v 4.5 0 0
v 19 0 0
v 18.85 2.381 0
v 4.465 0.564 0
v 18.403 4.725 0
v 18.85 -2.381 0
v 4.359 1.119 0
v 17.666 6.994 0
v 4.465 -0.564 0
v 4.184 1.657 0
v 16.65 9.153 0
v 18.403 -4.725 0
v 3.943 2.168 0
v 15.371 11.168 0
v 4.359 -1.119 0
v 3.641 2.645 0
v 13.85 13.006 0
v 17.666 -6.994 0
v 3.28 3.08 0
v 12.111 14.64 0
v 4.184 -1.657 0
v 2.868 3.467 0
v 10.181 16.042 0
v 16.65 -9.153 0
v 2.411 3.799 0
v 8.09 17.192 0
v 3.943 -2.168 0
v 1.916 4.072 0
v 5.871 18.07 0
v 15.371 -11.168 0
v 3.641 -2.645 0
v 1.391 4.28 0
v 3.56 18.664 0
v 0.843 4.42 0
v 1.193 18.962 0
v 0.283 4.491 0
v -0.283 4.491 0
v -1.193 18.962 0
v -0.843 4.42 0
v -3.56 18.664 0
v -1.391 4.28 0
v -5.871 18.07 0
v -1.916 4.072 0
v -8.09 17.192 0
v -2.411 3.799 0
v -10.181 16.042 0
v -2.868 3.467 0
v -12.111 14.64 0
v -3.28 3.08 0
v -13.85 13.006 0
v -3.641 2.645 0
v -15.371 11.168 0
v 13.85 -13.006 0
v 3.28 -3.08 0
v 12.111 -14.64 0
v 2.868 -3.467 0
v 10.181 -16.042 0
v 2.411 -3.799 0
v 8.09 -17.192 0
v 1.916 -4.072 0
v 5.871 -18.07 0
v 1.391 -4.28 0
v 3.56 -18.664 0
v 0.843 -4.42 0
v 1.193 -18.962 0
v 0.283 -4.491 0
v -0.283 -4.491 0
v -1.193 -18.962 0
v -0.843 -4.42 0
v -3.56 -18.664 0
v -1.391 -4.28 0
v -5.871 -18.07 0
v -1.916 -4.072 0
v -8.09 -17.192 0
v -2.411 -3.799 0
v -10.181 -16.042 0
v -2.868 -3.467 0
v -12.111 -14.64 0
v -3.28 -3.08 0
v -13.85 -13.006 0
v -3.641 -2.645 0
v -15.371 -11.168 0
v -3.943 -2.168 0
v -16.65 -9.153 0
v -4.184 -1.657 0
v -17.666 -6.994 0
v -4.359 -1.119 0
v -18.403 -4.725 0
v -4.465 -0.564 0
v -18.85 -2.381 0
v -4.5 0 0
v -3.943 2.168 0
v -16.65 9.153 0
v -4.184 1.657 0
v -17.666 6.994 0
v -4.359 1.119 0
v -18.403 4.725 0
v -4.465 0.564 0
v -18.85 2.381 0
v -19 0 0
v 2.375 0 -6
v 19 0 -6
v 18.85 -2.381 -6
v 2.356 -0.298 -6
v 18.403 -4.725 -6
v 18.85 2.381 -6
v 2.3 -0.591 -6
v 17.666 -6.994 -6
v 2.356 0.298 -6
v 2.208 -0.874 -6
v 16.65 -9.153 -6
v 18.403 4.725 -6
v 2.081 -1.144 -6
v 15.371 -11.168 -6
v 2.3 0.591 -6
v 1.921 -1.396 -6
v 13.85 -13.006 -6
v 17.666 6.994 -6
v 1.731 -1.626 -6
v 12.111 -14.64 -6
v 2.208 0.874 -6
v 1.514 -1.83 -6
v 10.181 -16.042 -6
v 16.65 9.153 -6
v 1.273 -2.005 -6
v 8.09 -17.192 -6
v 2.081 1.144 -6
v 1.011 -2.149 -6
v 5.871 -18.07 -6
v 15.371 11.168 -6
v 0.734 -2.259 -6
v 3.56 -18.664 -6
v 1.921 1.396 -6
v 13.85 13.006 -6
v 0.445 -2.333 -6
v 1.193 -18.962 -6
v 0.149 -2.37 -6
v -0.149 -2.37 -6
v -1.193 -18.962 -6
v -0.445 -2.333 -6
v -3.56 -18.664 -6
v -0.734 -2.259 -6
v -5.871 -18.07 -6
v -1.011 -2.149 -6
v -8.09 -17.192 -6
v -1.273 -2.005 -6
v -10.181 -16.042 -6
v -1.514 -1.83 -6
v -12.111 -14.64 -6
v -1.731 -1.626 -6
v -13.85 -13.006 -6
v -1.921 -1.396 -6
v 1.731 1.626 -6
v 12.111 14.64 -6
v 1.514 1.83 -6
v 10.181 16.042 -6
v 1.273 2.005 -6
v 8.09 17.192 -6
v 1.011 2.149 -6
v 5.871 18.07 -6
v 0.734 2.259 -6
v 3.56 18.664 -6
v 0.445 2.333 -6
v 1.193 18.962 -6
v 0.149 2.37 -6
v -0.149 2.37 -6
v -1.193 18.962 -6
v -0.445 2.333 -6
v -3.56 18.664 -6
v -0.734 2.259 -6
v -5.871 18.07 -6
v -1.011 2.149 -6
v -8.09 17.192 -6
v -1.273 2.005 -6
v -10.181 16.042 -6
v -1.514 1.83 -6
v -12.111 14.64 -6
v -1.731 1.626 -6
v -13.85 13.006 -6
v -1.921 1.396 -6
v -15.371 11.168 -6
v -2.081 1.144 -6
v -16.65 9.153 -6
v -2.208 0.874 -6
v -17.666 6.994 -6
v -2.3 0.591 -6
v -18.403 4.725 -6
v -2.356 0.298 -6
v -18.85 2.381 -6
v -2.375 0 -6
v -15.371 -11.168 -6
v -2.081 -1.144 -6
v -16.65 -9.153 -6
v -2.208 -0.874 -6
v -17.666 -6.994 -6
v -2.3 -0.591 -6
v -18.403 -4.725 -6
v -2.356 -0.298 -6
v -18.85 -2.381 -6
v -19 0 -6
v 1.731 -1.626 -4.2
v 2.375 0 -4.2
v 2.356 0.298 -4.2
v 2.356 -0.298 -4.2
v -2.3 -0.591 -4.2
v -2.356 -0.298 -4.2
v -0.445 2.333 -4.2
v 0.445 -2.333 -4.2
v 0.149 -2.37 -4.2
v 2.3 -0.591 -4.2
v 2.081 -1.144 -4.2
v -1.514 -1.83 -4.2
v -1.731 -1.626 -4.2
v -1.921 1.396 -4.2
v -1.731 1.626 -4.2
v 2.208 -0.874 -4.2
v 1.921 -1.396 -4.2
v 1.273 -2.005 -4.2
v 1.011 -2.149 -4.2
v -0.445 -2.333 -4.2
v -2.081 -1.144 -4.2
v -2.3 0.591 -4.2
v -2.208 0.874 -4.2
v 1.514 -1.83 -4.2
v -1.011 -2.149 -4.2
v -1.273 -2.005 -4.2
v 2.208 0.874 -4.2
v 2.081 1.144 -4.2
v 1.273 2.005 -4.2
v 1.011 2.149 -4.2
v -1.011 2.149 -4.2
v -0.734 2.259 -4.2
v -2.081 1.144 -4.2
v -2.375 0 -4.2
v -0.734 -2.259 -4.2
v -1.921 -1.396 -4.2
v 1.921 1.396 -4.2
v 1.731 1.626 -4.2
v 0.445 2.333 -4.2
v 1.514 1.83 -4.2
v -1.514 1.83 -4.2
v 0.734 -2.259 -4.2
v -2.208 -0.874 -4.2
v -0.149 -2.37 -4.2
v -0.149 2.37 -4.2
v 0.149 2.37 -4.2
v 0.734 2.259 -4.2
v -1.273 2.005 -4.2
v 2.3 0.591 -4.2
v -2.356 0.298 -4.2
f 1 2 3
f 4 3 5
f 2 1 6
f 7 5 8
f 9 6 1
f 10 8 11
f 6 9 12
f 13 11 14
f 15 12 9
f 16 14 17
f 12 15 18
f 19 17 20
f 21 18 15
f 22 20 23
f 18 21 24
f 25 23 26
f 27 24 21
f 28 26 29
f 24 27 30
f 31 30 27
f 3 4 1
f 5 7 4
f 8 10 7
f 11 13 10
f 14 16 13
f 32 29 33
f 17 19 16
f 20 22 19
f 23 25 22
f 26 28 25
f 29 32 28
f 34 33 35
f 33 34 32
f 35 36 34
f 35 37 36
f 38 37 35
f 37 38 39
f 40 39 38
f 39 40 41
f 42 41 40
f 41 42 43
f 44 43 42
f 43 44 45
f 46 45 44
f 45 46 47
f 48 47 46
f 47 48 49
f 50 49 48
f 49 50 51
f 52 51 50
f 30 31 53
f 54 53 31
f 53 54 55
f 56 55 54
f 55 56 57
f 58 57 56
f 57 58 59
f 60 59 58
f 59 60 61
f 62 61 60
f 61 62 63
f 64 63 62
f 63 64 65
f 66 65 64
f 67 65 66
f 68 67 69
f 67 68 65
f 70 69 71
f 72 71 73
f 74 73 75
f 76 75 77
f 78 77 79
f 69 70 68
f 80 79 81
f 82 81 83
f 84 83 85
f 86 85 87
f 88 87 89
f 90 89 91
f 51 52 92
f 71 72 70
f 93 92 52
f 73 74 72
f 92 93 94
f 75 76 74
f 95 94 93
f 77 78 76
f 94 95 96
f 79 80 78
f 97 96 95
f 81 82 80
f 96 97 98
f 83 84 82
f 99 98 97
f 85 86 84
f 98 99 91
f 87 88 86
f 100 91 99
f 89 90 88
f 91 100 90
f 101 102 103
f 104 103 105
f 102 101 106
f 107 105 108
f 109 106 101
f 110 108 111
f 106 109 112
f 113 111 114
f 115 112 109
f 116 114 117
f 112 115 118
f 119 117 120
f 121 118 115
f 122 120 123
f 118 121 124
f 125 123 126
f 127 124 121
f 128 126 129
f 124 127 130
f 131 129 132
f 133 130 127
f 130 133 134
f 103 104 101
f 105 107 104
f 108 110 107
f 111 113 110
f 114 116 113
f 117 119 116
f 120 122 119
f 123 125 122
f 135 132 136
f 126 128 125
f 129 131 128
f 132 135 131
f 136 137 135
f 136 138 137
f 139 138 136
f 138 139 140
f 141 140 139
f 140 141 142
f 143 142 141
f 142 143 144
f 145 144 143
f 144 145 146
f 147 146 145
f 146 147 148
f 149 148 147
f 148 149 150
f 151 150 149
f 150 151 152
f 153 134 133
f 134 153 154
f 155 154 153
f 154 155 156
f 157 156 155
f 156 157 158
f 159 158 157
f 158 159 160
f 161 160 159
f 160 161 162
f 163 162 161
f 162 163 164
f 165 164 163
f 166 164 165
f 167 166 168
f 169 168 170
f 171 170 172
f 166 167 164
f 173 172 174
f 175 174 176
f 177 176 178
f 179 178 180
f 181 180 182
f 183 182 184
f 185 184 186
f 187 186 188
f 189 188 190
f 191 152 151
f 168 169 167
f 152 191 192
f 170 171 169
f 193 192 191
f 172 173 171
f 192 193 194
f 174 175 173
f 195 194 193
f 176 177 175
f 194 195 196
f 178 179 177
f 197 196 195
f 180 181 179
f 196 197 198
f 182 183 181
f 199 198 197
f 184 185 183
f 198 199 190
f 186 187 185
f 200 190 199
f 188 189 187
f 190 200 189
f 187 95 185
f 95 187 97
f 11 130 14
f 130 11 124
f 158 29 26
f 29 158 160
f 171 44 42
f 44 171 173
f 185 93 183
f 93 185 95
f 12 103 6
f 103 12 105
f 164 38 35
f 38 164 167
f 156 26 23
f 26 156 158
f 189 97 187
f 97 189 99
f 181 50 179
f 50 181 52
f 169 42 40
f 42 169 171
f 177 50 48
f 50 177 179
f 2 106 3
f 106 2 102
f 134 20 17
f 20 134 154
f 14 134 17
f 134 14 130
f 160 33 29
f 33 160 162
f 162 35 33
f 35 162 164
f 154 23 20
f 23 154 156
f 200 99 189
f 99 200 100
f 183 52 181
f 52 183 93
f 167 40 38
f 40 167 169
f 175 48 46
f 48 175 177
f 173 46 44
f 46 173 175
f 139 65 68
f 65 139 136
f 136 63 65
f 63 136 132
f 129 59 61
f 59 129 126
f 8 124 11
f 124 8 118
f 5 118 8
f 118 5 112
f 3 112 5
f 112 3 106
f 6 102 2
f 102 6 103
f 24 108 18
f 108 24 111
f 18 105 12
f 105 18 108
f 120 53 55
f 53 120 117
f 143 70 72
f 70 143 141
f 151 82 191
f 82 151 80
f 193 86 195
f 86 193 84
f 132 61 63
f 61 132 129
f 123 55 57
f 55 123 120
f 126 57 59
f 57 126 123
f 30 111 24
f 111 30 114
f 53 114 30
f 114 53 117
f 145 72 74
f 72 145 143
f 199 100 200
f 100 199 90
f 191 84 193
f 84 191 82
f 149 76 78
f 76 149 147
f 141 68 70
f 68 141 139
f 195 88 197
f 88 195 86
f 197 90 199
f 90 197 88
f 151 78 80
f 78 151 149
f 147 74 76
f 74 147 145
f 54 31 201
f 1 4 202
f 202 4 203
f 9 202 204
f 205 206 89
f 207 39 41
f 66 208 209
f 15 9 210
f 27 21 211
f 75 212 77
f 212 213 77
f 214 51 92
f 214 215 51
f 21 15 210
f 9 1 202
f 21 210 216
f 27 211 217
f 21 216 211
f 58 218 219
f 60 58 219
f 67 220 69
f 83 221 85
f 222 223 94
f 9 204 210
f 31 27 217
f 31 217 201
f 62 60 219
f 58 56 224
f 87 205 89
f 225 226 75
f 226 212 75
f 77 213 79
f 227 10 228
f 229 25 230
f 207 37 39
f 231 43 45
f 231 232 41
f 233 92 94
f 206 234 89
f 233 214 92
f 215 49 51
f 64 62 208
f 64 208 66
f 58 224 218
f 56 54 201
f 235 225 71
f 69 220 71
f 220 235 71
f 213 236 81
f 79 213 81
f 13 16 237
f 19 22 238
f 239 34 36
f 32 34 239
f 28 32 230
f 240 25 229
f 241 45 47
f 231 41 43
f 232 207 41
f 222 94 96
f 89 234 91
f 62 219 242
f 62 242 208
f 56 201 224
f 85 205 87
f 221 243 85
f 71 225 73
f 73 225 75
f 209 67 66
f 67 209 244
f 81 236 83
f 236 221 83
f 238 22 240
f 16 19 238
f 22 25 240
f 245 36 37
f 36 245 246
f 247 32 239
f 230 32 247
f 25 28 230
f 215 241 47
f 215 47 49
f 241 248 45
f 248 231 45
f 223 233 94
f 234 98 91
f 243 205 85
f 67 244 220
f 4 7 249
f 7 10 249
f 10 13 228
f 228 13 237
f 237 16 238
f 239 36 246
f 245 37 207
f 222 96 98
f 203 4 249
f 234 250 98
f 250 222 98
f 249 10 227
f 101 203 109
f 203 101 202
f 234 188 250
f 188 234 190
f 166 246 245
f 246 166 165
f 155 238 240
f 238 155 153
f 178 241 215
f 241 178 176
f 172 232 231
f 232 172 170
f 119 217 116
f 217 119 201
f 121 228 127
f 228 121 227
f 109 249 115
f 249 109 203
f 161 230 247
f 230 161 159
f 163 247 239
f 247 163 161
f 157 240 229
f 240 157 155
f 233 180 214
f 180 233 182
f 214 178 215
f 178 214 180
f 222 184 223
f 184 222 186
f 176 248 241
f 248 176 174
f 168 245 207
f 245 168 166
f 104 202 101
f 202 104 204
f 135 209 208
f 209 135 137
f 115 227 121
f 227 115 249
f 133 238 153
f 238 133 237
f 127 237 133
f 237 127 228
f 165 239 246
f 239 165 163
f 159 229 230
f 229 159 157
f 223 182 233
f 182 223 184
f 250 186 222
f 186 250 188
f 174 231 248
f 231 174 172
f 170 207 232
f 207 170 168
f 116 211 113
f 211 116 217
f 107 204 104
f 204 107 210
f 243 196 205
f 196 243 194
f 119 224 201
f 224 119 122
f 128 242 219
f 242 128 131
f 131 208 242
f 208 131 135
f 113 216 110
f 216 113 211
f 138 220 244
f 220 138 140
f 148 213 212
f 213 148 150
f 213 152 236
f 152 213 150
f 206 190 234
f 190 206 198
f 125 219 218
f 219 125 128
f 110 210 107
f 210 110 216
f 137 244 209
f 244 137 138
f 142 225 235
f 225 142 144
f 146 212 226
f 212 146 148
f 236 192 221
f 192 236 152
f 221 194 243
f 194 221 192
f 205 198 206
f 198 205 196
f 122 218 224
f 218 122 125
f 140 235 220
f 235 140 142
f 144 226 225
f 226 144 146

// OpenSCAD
$fn = 50;


difference() {
	union() {
		translate(v = [0, 0, -6.0000000000]) {
			cylinder(h = 6, r = 10.0000000000);
		}
		translate(v = [0, 0, -6.0000000000]) {
			cylinder(h = 6, r = 19.0000000000);
		}
	}
	union() {
		translate(v = [0, 0, 0]) {
			rotate(a = [0, 0, 0]) {
				difference() {
					union() {
						#translate(v = [0, 0, -6.0000000000]) {
							cylinder(h = 6, r = 2.2500000000);
						}
						#translate(v = [0, 0, -4.2000000000]) {
							cylinder(h = 4.2000000000, r1 = 2.3750000000, r2 = 4.5000000000);
						}
						#translate(v = [0, 0, -6.0000000000]) {
							cylinder(h = 6, r = 2.3750000000);
						}
						#translate(v = [0, 0, -6.0000000000]) {
							cylinder(h = 6, r = 2.2500000000);
						}
					}
					union();
				}
			}
		}
	}
}
